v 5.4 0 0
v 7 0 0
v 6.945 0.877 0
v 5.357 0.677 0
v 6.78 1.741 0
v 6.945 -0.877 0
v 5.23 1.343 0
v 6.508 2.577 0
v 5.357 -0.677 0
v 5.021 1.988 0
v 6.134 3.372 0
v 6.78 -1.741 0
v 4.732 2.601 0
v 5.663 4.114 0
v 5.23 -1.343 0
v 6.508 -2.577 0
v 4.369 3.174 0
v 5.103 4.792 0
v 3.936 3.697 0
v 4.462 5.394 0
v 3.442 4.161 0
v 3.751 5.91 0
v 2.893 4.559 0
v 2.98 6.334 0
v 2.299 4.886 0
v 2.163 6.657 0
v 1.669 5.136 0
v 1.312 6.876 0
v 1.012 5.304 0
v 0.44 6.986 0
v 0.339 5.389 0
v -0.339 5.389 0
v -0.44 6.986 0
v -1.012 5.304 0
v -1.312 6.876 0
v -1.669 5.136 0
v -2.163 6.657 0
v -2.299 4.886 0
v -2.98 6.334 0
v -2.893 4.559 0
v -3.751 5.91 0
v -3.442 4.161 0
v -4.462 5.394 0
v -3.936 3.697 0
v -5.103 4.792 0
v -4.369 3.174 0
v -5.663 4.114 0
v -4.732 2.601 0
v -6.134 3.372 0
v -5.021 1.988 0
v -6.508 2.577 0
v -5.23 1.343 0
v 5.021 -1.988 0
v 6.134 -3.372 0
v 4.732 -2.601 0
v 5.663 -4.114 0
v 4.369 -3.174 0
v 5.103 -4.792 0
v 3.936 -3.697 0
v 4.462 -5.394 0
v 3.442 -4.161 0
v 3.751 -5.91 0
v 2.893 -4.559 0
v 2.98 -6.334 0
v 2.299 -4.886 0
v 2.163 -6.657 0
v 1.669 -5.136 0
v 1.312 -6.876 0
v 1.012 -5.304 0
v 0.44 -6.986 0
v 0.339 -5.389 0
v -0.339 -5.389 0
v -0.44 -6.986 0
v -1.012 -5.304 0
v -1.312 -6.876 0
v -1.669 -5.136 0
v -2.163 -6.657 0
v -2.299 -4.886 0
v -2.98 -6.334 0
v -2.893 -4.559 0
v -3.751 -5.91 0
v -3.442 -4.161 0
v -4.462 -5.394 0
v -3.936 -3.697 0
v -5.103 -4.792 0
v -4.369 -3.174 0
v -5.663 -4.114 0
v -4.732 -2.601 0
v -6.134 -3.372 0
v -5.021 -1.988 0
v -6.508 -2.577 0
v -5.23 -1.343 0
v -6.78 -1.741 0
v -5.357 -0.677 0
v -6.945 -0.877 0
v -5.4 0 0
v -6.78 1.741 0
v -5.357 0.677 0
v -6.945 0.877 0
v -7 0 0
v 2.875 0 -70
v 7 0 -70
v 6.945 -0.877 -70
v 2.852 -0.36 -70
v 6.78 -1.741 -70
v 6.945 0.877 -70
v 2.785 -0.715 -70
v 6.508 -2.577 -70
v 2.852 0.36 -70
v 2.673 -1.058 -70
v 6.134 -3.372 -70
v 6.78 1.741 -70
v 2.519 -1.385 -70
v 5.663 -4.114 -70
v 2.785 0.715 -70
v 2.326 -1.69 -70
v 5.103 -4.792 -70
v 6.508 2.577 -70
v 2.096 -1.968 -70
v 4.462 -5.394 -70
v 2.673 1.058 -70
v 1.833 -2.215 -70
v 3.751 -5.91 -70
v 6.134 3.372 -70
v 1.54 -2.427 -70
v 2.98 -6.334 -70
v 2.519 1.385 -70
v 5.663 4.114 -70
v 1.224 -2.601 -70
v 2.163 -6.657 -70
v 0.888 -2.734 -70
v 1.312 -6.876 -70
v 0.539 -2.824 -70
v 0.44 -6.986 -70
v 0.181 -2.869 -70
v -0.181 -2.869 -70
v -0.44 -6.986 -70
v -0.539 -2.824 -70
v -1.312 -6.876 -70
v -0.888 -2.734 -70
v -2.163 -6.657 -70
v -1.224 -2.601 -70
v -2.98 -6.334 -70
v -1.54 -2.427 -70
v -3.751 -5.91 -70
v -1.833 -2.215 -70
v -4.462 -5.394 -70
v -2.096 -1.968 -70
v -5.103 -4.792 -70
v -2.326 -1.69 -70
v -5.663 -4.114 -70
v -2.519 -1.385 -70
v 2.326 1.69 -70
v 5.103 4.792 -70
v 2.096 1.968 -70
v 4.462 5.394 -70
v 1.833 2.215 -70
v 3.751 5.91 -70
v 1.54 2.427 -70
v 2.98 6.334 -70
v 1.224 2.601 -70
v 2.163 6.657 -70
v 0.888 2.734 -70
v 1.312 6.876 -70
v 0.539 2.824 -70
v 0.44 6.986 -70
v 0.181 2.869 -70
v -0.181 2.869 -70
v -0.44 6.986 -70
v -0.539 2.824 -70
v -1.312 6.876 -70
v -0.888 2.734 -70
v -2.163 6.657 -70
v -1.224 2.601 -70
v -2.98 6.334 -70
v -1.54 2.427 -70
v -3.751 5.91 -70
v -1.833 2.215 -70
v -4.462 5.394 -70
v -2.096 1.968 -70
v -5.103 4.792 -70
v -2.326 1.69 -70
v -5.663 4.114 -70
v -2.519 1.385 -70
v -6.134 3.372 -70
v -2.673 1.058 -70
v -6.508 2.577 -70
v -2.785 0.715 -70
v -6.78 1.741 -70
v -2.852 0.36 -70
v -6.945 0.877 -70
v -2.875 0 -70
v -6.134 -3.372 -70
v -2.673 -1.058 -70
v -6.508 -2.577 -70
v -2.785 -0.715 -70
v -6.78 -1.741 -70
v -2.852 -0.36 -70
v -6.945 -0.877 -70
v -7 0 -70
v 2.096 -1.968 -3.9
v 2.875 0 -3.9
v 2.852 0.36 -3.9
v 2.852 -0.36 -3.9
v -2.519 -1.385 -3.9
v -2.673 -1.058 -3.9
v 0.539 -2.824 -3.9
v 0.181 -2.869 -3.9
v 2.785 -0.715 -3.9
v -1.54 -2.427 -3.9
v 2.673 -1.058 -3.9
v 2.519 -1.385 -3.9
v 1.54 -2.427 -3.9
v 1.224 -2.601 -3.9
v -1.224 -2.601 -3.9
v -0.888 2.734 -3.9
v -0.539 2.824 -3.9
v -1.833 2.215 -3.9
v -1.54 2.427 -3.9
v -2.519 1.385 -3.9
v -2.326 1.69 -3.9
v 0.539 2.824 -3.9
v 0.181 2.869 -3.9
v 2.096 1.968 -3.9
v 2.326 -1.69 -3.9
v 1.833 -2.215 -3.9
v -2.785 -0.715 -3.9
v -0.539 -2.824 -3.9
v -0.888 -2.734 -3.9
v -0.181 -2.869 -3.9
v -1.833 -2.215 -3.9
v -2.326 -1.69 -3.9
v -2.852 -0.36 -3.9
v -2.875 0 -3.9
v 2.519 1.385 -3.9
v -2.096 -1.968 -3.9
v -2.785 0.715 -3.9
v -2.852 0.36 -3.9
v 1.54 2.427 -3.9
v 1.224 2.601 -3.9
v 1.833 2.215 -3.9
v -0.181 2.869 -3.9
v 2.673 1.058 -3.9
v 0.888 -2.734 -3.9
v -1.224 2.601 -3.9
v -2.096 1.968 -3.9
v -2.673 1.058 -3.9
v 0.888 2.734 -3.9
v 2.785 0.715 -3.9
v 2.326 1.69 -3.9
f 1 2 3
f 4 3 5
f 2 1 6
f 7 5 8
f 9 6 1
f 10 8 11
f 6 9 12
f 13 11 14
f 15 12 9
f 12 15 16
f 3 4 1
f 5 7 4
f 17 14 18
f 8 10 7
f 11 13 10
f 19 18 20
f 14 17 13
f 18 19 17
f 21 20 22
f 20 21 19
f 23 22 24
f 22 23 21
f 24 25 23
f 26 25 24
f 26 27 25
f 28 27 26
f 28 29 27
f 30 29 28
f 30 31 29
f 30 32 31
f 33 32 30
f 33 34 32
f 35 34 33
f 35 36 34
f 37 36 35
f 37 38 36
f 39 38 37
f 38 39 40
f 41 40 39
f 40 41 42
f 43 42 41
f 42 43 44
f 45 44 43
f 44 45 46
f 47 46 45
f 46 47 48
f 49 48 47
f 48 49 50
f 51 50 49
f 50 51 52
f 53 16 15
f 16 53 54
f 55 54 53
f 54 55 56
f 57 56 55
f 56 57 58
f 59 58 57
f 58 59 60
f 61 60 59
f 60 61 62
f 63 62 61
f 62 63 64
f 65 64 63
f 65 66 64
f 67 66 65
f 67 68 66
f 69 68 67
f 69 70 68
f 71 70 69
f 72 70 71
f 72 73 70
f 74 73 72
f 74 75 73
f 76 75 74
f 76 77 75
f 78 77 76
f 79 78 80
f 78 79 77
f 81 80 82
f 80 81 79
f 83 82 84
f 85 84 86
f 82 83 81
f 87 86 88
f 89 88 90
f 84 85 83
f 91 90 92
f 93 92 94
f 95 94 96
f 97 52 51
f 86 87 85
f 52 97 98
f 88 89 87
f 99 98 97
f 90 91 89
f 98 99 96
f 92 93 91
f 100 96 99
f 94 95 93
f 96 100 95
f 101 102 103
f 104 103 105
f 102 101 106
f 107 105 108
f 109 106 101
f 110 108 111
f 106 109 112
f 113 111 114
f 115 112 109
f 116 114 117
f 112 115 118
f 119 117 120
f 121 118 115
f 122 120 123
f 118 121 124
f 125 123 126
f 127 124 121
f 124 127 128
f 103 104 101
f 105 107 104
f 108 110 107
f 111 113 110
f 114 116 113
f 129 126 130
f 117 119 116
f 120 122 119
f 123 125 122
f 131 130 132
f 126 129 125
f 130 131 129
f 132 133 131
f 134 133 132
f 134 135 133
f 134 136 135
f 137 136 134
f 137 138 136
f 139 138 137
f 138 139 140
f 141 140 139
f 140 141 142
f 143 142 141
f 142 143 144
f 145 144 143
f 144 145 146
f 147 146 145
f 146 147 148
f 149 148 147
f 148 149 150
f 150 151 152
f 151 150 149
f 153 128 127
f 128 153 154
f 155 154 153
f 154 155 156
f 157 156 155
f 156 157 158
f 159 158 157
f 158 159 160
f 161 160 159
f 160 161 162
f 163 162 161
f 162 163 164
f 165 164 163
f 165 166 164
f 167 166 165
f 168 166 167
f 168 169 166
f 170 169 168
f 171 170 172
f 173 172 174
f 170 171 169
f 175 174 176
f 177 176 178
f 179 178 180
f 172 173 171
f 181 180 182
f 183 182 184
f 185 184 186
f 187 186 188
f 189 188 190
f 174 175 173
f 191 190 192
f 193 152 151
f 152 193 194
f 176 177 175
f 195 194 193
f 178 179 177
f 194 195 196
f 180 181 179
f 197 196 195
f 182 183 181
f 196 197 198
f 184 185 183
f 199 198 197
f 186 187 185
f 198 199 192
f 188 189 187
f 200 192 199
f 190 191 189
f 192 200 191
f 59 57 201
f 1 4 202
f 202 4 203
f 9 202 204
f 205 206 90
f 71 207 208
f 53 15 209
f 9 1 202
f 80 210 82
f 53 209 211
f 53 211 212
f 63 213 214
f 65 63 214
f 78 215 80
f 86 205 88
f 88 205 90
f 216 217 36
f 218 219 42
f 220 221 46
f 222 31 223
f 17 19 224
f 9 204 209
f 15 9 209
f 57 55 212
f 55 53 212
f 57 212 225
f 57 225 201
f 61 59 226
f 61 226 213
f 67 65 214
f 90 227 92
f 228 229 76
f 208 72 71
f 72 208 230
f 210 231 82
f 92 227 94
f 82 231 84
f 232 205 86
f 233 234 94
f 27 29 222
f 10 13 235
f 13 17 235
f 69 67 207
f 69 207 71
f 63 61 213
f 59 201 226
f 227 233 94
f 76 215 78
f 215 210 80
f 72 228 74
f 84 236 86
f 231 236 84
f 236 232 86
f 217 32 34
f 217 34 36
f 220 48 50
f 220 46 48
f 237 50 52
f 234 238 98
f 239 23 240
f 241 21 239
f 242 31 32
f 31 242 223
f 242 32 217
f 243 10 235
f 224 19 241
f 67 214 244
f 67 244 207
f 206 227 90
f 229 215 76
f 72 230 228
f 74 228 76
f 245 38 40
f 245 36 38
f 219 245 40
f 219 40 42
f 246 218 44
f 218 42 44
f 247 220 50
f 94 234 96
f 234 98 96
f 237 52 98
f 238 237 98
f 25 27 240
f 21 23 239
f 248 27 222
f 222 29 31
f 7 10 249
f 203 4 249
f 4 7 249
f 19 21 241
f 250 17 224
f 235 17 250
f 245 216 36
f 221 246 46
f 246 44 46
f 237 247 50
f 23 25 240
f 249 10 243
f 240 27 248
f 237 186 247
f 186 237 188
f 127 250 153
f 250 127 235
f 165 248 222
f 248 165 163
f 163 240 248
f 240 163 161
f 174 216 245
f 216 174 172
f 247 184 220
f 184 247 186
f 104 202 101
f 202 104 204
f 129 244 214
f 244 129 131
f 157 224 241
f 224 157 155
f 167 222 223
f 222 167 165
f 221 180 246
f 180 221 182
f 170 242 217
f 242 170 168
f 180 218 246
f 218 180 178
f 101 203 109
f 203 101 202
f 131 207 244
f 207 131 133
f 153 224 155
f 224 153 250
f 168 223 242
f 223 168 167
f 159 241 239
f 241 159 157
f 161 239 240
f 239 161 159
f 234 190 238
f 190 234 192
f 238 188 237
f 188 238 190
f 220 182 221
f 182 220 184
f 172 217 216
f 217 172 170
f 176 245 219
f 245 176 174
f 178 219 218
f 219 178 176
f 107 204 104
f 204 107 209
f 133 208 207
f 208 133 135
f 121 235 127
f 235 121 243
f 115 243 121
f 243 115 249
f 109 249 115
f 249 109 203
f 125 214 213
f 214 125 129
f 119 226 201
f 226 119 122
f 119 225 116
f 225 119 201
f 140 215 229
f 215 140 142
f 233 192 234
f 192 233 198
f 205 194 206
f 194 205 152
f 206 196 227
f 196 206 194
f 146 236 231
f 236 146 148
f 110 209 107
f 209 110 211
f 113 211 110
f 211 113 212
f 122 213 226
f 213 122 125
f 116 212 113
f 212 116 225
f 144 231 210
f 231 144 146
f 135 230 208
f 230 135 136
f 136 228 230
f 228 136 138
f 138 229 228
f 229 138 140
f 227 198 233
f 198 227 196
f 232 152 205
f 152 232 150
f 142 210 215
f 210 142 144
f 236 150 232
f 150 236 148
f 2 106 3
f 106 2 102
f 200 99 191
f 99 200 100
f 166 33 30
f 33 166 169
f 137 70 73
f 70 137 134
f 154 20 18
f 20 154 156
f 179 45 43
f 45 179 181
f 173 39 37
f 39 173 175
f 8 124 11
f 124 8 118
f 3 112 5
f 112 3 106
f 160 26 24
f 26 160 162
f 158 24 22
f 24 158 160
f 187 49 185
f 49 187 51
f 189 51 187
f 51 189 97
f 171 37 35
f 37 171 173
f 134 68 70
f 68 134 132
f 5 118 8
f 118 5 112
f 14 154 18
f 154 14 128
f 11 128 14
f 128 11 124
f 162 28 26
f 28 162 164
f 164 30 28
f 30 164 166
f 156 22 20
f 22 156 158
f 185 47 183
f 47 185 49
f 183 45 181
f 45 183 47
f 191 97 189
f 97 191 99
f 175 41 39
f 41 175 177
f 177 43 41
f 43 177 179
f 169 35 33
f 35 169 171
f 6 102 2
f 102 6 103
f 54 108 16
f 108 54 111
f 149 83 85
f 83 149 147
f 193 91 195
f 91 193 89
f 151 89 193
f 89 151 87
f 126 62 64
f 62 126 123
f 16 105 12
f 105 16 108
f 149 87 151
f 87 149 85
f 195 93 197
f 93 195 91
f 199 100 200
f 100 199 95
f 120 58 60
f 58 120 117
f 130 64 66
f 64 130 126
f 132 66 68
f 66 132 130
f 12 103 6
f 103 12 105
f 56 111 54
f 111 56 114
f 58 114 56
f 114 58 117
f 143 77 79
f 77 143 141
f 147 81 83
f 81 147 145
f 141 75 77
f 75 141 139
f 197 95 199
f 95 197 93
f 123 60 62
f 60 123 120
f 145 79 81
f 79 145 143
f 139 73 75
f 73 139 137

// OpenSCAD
$fn = 50;


difference() {
	union() {
		translate(v = [0, 0, -70.0000000000]) {
			cylinder(h = 70, r = 7.0000000000);
		}
		cylinder(h = 0, r = 10.0000000000);
	}
	union() {
		translate(v = [0, 0, 0]) {
			rotate(a = [0, 0, 0]) {
				difference() {
					union() {
						#translate(v = [0, 0, -70.0000000000]) {
							cylinder(h = 70, r = 2.6000000000);
						}
						#translate(v = [0, 0, -3.9000000000]) {
							cylinder(h = 3.9000000000, r = 7.0000000000, r1 = 2.8750000000, r2 = 5.4000000000);
						}
						#translate(v = [0, 0, -70.0000000000]) {
							cylinder(h = 70, r = 2.8750000000);
						}
						#translate(v = [0, 0, -70.0000000000]) {
							cylinder(h = 70, r = 2.6000000000);
						}
					}
					union();
				}
			}
		}
	}
}
